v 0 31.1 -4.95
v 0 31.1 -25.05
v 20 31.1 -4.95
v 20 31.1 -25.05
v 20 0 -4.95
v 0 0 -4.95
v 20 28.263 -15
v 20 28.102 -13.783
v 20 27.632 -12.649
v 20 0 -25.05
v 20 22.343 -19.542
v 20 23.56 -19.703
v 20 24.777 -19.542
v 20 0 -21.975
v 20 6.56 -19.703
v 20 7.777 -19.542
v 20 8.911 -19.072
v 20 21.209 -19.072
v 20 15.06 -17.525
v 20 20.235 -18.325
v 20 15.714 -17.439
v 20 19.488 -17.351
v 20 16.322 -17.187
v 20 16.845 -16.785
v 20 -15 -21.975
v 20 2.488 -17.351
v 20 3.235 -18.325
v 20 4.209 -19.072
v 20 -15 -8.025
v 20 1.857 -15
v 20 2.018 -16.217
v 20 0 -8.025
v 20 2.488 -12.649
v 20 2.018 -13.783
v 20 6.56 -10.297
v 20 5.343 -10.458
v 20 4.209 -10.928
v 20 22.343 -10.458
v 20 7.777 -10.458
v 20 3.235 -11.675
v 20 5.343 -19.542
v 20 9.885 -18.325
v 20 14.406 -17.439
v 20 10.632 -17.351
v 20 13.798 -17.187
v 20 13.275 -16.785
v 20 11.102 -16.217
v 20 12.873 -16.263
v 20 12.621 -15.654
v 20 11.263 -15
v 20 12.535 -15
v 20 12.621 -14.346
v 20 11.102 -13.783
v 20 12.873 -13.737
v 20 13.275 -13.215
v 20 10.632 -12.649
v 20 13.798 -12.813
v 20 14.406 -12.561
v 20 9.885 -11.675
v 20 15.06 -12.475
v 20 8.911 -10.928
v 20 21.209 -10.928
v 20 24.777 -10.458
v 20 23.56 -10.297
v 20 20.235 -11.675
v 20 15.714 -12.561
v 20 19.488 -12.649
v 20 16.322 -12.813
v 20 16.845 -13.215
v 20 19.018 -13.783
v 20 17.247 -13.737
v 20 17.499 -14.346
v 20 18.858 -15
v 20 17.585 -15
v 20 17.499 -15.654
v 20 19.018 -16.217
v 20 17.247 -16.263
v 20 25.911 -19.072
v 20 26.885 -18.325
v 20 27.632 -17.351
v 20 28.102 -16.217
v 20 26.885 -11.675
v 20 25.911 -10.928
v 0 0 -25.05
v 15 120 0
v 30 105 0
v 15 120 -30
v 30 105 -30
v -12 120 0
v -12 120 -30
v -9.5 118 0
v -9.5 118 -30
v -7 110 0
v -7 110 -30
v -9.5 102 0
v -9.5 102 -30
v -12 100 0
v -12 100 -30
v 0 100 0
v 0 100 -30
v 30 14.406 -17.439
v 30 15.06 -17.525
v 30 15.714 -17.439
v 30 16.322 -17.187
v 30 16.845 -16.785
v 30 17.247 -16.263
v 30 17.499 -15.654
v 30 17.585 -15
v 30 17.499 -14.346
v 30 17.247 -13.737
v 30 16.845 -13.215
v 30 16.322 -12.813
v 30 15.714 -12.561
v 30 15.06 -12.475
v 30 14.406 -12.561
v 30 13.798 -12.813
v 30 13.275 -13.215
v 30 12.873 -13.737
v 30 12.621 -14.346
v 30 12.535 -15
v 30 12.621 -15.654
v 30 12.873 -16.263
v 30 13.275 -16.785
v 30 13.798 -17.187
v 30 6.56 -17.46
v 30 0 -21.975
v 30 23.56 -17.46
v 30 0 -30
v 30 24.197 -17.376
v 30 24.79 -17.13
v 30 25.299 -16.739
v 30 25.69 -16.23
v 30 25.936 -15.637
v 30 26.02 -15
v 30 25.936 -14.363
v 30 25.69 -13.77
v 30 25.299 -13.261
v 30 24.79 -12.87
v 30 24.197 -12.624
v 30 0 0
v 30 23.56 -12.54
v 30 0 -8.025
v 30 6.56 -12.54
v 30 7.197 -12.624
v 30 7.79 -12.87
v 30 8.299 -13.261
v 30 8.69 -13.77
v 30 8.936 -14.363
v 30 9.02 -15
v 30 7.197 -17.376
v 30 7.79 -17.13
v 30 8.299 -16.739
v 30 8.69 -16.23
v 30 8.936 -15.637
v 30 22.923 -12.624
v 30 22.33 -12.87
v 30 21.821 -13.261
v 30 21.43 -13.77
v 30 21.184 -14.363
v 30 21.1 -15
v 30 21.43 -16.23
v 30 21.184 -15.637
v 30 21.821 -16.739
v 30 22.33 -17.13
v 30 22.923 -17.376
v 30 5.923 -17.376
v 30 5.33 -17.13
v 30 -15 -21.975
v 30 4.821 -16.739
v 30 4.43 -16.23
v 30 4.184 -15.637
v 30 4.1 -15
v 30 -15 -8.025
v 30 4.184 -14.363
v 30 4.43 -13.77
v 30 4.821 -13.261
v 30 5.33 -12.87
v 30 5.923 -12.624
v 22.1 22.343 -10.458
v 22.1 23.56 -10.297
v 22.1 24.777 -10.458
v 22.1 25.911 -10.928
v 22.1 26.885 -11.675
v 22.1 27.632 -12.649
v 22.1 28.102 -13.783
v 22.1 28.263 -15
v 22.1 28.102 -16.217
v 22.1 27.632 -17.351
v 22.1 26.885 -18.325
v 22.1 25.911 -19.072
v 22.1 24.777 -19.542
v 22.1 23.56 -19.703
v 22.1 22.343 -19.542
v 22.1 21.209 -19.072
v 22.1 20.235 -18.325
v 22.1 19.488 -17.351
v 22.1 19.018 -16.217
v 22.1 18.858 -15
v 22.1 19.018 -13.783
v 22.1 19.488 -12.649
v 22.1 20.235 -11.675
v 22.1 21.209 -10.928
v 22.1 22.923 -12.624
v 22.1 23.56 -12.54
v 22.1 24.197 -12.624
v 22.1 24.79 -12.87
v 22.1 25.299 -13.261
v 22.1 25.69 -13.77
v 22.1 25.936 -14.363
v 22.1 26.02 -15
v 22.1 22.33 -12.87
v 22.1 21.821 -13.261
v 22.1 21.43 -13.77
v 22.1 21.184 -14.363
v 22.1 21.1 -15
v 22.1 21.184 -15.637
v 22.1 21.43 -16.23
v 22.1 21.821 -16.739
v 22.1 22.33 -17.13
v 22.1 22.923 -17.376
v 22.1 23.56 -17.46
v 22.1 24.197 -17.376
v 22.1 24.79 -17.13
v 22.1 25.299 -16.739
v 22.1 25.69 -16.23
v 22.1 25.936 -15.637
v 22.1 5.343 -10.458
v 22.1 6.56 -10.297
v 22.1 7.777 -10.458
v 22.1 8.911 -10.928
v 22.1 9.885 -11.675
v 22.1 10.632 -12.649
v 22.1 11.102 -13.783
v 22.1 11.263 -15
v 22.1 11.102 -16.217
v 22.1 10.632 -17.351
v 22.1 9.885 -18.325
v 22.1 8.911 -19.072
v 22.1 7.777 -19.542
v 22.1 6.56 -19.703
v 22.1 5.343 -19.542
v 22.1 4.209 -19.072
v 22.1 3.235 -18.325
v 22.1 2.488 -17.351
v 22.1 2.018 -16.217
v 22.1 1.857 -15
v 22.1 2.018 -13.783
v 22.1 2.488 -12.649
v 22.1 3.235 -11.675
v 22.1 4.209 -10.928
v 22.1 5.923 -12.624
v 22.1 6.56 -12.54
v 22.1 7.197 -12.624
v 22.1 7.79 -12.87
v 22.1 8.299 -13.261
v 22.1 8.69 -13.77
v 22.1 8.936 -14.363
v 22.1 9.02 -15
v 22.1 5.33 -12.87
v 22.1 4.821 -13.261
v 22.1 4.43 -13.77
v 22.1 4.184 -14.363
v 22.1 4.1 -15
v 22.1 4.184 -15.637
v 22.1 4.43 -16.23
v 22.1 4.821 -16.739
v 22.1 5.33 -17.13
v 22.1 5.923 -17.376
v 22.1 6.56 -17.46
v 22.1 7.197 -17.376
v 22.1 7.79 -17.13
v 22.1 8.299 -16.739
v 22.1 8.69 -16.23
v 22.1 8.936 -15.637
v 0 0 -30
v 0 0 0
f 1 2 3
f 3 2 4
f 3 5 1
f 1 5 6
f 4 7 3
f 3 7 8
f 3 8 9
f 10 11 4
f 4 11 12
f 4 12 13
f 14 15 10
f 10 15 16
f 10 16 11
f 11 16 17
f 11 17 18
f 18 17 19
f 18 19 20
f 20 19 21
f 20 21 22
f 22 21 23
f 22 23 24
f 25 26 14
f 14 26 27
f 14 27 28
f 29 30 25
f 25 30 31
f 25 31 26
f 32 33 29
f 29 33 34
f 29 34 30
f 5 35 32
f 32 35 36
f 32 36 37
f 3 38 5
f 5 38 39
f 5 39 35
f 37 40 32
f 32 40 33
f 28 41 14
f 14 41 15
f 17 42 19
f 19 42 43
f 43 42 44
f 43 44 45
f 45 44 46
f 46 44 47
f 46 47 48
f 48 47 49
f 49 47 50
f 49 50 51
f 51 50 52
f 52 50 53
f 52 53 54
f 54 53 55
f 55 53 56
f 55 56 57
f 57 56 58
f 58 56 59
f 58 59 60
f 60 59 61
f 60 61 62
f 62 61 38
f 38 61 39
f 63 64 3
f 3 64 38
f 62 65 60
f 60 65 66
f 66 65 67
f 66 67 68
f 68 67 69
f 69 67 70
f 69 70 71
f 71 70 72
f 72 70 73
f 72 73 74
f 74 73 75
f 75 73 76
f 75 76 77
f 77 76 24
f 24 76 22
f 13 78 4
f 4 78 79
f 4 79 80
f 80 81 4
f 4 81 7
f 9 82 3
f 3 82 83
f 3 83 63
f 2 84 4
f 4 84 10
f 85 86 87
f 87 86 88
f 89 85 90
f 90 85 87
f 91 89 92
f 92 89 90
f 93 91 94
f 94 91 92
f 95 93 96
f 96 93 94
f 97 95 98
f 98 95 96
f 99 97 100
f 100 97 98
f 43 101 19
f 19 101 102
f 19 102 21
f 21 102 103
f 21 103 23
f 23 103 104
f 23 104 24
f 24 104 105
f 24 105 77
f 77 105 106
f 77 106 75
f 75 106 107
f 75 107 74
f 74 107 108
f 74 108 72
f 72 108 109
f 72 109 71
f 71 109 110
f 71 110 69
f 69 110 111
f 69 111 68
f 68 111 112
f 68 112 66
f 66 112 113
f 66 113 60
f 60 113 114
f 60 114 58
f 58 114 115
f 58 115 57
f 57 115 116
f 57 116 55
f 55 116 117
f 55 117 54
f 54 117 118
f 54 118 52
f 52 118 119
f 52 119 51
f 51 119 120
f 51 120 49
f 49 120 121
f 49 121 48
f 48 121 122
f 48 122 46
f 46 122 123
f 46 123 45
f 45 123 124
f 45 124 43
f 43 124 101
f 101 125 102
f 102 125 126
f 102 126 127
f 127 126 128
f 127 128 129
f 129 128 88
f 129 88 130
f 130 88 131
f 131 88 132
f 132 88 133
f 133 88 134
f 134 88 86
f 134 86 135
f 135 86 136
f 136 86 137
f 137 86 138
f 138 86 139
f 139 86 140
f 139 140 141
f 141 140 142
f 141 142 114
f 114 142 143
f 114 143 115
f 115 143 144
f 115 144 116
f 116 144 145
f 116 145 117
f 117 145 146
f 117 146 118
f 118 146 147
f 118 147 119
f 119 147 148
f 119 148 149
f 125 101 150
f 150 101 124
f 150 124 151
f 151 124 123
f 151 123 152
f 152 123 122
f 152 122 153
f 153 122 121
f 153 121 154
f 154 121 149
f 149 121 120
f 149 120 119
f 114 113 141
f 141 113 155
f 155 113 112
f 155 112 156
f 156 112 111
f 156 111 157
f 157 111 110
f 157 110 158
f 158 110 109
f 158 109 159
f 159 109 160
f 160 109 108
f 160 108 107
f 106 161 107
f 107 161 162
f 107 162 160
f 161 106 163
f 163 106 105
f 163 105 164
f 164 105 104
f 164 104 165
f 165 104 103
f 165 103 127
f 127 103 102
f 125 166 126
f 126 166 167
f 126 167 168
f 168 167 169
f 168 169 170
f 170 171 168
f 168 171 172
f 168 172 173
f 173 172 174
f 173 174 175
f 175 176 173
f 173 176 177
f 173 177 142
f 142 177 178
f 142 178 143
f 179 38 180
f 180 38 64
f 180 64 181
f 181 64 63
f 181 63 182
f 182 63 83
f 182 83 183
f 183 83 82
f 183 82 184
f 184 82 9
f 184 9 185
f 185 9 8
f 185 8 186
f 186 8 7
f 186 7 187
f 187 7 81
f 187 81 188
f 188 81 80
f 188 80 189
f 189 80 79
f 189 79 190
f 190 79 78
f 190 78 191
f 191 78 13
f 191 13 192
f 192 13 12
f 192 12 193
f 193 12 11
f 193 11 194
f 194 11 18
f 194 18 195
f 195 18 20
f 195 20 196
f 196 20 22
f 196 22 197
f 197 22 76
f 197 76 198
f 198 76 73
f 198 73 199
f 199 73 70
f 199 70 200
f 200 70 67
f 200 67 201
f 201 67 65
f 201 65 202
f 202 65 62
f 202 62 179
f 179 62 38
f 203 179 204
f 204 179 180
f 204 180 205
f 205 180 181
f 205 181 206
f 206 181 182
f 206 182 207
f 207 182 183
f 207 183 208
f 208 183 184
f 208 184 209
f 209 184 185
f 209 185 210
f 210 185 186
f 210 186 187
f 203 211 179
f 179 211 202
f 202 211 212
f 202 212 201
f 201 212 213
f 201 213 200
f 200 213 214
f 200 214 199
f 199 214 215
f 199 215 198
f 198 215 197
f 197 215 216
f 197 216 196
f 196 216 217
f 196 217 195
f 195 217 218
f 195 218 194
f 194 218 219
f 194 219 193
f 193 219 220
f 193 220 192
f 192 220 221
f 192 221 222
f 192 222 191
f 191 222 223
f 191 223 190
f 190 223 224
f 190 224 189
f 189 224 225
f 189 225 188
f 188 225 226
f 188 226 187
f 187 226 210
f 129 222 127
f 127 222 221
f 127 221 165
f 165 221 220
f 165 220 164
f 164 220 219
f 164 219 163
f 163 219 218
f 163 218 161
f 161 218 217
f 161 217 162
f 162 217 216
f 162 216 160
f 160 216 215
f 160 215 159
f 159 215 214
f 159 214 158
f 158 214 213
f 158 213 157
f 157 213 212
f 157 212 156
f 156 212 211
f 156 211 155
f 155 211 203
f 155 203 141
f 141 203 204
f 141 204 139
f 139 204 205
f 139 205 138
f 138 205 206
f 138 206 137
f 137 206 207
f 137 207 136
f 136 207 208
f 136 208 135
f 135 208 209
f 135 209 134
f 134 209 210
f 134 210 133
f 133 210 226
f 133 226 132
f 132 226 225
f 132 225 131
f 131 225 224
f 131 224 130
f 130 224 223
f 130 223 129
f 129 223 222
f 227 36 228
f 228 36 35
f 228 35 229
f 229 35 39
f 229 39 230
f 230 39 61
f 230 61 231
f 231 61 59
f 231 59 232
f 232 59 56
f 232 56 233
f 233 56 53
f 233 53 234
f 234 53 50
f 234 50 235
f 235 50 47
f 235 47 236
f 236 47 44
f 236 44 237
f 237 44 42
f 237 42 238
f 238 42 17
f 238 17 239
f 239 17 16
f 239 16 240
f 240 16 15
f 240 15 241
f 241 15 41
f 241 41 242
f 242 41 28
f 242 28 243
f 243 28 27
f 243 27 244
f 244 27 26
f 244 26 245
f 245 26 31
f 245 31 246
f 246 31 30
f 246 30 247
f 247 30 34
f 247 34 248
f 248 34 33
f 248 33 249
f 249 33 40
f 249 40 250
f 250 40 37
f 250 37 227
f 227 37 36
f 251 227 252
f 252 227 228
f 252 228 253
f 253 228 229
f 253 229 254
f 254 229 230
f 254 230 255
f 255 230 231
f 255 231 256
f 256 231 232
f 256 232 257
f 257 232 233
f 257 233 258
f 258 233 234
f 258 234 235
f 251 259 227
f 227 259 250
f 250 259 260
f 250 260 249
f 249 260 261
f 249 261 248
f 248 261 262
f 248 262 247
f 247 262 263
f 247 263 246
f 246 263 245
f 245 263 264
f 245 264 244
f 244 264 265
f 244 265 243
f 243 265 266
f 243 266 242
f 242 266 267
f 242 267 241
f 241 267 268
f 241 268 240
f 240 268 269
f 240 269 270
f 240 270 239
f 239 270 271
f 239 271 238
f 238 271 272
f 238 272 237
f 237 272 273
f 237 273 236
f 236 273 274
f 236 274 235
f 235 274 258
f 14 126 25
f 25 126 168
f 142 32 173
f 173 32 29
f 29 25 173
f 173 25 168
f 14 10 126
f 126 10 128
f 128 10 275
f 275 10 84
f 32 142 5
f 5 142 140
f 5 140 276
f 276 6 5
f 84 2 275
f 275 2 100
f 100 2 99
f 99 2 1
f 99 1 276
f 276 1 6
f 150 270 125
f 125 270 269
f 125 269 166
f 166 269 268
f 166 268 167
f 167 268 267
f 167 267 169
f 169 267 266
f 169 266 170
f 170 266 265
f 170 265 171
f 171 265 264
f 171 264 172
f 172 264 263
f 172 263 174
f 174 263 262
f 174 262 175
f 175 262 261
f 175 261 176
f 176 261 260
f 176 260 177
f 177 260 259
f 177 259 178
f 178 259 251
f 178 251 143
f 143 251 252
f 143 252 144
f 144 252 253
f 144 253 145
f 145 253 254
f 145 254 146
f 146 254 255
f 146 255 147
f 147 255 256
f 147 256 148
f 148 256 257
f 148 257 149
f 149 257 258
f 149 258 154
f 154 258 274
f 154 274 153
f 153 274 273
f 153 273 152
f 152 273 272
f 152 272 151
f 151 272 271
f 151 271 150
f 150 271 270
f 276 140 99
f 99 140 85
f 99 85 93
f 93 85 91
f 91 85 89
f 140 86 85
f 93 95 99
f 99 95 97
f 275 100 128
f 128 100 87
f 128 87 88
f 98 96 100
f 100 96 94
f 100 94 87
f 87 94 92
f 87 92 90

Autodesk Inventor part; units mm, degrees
ref_plane "YZ Plane" through (0, 0, 0) normal (1, 0, 0) x (0, 1, 0)
ref_plane "XZ Plane" through (0, 0, 0) normal (0, 1, 0) x (-1, 0, 0)
ref_plane "XY Plane" through (0, 0, 0) normal (0, 0, 1) x (1, 0, 0)
sketch "Sketch1" plane through (0, 0, 0) normal (0, 0, 1) x (1, 0, 0)
  line L0 (0, 0) -> (25, 0)
  line L1 (25, 0) -> (25, 40)
  line L2 (25, 40) -> (0, 40)
  line L3 (0, 40) -> (0, 0)
  dimension "d1" = 25
  dimension "d2" = 40
  dimension "d3" = 25
extrude "Extrusion1" add sketch "Sketch1" against normal blind 30
sketch "Sketch2" plane through (25, 0, 0) normal (1, 0, 0) x (0, 0, -1)
  line L0 (0, 0) -> (30, 0) projected
  circle A0 centre (15, 6.56) radius 2.46
extrude "Extrusion2" cut sketch "Sketch2" against normal blind 30
sketch "Sketch3" plane through (0, 0, 0) normal (-1, 0, 0) x (0, 0, 1)
  line L0 (0, 0) -> (-30, 0) projected
  line L1 (-25.05, 0) -> (-4.95, 0)
  line L2 (-4.95, 0) -> (-4.95, 33.12)
  line L3 (-4.95, 33.12) -> (-25.05, 33.12)
  line L4 (-25.05, 33.12) -> (-25.05, 0)
  dimension "d11" = 20.1
extrude "Extrusion3" cut sketch "Sketch3" against normal blind 20
sketch "Sketch4" plane through (0, 0, 0) normal (0, -1, 0) x (1, 0, 0)
  line L0 (20, -4.95) -> (20, -25.05) projected
  line L1 (20, -15) -> (25, -15)
  line L2 (25, 0) -> (25, -30) projected
  line L3 (20, -8.025) -> (25, -8.025)
  line L4 (25, -8.025) -> (25, -21.975)
  line L5 (25, -21.975) -> (20, -21.975)
  line L6 (20, -21.975) -> (20, -8.025)
  line L7 (20, -8.025) -> (25, -21.975) construction
  line L8 (25, -8.025) -> (20, -21.975) construction
  line L9 (25, -12.54) -> (25, -17.46) projected
  point P0 (0, 0)
  point P1 (22.5, -15)
  dimension "d14" = 13.95
extrude "Extrusion4" add sketch "Sketch4" along normal blind 15
sketch "Sketch5" plane through (20, 0, 0) normal (-1, 0, 0) x (0, 0, 1)
  circle A0 centre (-15, 6.56) radius 2.46 projected
  circle A1 centre (-15, 6.56) radius 4.7025
  circle A2 centre (-15, 6.56) radius 2.46 projected
  circle A3 centre (-15, 6.56) radius 2.46
  point P0 (0, 0)
  dimension "d17" = 9.405
extrude "Extrusion5" cut sketch "Sketch5" against normal blind 2.1
sketch "Sketch6" plane through (25, 0, 0) normal (1, 0, 0) x (0, 0, -1)
  circle A0 centre (15, 6.56) radius 4.7025 projected
  line L0 (15, 6.56) -> (15, 23.56)
  circle A1 centre (15, 23.56) radius 2.46
  point P0 (0, 0)
  dimension "d20" = 17
  dimension "d21" = 4.92
extrude "Extrusion6" cut sketch "Sketch6" against normal blind 10 contours A1
sketch "Sketch7" plane through (20, 0, 0) normal (-1, 0, 0) x (0, 0, 1)
  circle A0 centre (-15, 23.56) radius 2.46 projected
  circle A1 centre (-15, 23.56) radius 4.7025
  point P0 (0, 0)
  dimension "d24" = 9.405
extrude "Extrusion7" cut sketch "Sketch7" against normal blind 2.1
sketch "Sketch9" plane through (25, 0, 0) normal (1, 0, 0) x (0, 0, -1)
  circle A0 centre (15, 6.56) radius 2.46 projected
  circle A1 centre (15, 6.56) radius 2.46
  circle A2 centre (15, 23.56) radius 2.46 projected
  circle A3 centre (15, 23.56) radius 2.46
  line L0 (30, 40) -> (30, 0) projected
  line L1 (30, 0) -> (30, 40)
  line L2 (30, 40) -> (0, 40)
  line L3 (0, 40) -> (0, 0)
  line L4 (0, 0) -> (8.025, 0) projected
  line L5 (21.975, 0) -> (21.975, -15)
  line L6 (21.975, -15) -> (8.025, -15)
  line L7 (8.025, -15) -> (8.025, 0)
  line L8 (0, 0) -> (8.025, 0)
  line L9 (21.975, 0) -> (30, 0)
extrude "Extrusion8" add sketch "Sketch9" along normal blind 5
sketch "Sketch10" plane through (0, 40, 0) normal (0, 1, 0) x (1, 0, 0)
  line L0 (0, 30) -> (30, 30) projected
  line L1 (30, 0) -> (0, 0) projected
  line L2 (0, 30) -> (30, 30)
  line L3 (30, 30) -> (30, 0)
  line L4 (30, 0) -> (0, 0)
  line L5 (0, 0) -> (0, 30)
extrude "Extrusion9" add sketch "Sketch10" along normal blind 30
sketch "Sketch12" plane through (30, 0, 0) normal (1, 0, 0) x (0, 0, -1)
  circle A0 centre (15, 6.56) radius 2.46 projected
  line L0 (15, 6.56) -> (15, 15.06)
  circle A1 centre (15, 15.06) radius 2.525
  point P0 (0, 0)
  dimension "d31" = 8.5
  dimension "d33" = 5.05
extrude "Extrusion10" cut sketch "Sketch12" against normal blind 30 contours A1
sketch "Sketch14" plane through (0, 0, 0) normal (0, 0, 1) x (1, 0, 0)
  line L0 (30, 70) -> (0, 70) projected
  line L1 (0, 70) -> (0, 85)
  line L2 (30, 0) -> (30, 70) projected
  line L3 (30, 100) -> (30, 70)
  line L4 (-12, 120) -> (15, 120)
  line L5 (-9.5, 118) -> (-7, 110)
  line L6 (-9.5, 118) -> (-12, 120)
  line L7 (-9.5, 102) -> (-7, 110)
  line L8 (-9.5, 102) -> (-12, 100)
  line L9 (30, 105) -> (15, 120)
  line L10 (30, 105) -> (30, 100)
  line L11 (0, 85) -> (0, 100)
  line L12 (0, 100) -> (-12, 100)
  point P0 (0, 0)
  dimension "d60" = 20
  dimension "d64" = 12
extrude "Extrusion12" add sketch "Sketch14" against normal blind 30
sketch "Sketch15" plane through (0, 0, -25.05) normal (-1, 0, 0) x (0, 0, 1)
  line L0 (0, 33.12) -> (20.1, 33.12) projected
  line L1 (20.1, 33.12) -> (20.1, 0) projected
  line L2 (0, 33.12) -> (20.1, 33.12)
  line L3 (20.1, 33.12) -> (20.1, 31.1)
  line L4 (20.1, 31.1) -> (0, 31.1)
  line L5 (0, 31.1) -> (0, 33.12)
  point P0 (25.05, 0)
  dimension "d57" = 2.02
extrude "Extrusion13" add sketch "Sketch15" against normal blind 20
properties part number "16mm_x_30mm"
